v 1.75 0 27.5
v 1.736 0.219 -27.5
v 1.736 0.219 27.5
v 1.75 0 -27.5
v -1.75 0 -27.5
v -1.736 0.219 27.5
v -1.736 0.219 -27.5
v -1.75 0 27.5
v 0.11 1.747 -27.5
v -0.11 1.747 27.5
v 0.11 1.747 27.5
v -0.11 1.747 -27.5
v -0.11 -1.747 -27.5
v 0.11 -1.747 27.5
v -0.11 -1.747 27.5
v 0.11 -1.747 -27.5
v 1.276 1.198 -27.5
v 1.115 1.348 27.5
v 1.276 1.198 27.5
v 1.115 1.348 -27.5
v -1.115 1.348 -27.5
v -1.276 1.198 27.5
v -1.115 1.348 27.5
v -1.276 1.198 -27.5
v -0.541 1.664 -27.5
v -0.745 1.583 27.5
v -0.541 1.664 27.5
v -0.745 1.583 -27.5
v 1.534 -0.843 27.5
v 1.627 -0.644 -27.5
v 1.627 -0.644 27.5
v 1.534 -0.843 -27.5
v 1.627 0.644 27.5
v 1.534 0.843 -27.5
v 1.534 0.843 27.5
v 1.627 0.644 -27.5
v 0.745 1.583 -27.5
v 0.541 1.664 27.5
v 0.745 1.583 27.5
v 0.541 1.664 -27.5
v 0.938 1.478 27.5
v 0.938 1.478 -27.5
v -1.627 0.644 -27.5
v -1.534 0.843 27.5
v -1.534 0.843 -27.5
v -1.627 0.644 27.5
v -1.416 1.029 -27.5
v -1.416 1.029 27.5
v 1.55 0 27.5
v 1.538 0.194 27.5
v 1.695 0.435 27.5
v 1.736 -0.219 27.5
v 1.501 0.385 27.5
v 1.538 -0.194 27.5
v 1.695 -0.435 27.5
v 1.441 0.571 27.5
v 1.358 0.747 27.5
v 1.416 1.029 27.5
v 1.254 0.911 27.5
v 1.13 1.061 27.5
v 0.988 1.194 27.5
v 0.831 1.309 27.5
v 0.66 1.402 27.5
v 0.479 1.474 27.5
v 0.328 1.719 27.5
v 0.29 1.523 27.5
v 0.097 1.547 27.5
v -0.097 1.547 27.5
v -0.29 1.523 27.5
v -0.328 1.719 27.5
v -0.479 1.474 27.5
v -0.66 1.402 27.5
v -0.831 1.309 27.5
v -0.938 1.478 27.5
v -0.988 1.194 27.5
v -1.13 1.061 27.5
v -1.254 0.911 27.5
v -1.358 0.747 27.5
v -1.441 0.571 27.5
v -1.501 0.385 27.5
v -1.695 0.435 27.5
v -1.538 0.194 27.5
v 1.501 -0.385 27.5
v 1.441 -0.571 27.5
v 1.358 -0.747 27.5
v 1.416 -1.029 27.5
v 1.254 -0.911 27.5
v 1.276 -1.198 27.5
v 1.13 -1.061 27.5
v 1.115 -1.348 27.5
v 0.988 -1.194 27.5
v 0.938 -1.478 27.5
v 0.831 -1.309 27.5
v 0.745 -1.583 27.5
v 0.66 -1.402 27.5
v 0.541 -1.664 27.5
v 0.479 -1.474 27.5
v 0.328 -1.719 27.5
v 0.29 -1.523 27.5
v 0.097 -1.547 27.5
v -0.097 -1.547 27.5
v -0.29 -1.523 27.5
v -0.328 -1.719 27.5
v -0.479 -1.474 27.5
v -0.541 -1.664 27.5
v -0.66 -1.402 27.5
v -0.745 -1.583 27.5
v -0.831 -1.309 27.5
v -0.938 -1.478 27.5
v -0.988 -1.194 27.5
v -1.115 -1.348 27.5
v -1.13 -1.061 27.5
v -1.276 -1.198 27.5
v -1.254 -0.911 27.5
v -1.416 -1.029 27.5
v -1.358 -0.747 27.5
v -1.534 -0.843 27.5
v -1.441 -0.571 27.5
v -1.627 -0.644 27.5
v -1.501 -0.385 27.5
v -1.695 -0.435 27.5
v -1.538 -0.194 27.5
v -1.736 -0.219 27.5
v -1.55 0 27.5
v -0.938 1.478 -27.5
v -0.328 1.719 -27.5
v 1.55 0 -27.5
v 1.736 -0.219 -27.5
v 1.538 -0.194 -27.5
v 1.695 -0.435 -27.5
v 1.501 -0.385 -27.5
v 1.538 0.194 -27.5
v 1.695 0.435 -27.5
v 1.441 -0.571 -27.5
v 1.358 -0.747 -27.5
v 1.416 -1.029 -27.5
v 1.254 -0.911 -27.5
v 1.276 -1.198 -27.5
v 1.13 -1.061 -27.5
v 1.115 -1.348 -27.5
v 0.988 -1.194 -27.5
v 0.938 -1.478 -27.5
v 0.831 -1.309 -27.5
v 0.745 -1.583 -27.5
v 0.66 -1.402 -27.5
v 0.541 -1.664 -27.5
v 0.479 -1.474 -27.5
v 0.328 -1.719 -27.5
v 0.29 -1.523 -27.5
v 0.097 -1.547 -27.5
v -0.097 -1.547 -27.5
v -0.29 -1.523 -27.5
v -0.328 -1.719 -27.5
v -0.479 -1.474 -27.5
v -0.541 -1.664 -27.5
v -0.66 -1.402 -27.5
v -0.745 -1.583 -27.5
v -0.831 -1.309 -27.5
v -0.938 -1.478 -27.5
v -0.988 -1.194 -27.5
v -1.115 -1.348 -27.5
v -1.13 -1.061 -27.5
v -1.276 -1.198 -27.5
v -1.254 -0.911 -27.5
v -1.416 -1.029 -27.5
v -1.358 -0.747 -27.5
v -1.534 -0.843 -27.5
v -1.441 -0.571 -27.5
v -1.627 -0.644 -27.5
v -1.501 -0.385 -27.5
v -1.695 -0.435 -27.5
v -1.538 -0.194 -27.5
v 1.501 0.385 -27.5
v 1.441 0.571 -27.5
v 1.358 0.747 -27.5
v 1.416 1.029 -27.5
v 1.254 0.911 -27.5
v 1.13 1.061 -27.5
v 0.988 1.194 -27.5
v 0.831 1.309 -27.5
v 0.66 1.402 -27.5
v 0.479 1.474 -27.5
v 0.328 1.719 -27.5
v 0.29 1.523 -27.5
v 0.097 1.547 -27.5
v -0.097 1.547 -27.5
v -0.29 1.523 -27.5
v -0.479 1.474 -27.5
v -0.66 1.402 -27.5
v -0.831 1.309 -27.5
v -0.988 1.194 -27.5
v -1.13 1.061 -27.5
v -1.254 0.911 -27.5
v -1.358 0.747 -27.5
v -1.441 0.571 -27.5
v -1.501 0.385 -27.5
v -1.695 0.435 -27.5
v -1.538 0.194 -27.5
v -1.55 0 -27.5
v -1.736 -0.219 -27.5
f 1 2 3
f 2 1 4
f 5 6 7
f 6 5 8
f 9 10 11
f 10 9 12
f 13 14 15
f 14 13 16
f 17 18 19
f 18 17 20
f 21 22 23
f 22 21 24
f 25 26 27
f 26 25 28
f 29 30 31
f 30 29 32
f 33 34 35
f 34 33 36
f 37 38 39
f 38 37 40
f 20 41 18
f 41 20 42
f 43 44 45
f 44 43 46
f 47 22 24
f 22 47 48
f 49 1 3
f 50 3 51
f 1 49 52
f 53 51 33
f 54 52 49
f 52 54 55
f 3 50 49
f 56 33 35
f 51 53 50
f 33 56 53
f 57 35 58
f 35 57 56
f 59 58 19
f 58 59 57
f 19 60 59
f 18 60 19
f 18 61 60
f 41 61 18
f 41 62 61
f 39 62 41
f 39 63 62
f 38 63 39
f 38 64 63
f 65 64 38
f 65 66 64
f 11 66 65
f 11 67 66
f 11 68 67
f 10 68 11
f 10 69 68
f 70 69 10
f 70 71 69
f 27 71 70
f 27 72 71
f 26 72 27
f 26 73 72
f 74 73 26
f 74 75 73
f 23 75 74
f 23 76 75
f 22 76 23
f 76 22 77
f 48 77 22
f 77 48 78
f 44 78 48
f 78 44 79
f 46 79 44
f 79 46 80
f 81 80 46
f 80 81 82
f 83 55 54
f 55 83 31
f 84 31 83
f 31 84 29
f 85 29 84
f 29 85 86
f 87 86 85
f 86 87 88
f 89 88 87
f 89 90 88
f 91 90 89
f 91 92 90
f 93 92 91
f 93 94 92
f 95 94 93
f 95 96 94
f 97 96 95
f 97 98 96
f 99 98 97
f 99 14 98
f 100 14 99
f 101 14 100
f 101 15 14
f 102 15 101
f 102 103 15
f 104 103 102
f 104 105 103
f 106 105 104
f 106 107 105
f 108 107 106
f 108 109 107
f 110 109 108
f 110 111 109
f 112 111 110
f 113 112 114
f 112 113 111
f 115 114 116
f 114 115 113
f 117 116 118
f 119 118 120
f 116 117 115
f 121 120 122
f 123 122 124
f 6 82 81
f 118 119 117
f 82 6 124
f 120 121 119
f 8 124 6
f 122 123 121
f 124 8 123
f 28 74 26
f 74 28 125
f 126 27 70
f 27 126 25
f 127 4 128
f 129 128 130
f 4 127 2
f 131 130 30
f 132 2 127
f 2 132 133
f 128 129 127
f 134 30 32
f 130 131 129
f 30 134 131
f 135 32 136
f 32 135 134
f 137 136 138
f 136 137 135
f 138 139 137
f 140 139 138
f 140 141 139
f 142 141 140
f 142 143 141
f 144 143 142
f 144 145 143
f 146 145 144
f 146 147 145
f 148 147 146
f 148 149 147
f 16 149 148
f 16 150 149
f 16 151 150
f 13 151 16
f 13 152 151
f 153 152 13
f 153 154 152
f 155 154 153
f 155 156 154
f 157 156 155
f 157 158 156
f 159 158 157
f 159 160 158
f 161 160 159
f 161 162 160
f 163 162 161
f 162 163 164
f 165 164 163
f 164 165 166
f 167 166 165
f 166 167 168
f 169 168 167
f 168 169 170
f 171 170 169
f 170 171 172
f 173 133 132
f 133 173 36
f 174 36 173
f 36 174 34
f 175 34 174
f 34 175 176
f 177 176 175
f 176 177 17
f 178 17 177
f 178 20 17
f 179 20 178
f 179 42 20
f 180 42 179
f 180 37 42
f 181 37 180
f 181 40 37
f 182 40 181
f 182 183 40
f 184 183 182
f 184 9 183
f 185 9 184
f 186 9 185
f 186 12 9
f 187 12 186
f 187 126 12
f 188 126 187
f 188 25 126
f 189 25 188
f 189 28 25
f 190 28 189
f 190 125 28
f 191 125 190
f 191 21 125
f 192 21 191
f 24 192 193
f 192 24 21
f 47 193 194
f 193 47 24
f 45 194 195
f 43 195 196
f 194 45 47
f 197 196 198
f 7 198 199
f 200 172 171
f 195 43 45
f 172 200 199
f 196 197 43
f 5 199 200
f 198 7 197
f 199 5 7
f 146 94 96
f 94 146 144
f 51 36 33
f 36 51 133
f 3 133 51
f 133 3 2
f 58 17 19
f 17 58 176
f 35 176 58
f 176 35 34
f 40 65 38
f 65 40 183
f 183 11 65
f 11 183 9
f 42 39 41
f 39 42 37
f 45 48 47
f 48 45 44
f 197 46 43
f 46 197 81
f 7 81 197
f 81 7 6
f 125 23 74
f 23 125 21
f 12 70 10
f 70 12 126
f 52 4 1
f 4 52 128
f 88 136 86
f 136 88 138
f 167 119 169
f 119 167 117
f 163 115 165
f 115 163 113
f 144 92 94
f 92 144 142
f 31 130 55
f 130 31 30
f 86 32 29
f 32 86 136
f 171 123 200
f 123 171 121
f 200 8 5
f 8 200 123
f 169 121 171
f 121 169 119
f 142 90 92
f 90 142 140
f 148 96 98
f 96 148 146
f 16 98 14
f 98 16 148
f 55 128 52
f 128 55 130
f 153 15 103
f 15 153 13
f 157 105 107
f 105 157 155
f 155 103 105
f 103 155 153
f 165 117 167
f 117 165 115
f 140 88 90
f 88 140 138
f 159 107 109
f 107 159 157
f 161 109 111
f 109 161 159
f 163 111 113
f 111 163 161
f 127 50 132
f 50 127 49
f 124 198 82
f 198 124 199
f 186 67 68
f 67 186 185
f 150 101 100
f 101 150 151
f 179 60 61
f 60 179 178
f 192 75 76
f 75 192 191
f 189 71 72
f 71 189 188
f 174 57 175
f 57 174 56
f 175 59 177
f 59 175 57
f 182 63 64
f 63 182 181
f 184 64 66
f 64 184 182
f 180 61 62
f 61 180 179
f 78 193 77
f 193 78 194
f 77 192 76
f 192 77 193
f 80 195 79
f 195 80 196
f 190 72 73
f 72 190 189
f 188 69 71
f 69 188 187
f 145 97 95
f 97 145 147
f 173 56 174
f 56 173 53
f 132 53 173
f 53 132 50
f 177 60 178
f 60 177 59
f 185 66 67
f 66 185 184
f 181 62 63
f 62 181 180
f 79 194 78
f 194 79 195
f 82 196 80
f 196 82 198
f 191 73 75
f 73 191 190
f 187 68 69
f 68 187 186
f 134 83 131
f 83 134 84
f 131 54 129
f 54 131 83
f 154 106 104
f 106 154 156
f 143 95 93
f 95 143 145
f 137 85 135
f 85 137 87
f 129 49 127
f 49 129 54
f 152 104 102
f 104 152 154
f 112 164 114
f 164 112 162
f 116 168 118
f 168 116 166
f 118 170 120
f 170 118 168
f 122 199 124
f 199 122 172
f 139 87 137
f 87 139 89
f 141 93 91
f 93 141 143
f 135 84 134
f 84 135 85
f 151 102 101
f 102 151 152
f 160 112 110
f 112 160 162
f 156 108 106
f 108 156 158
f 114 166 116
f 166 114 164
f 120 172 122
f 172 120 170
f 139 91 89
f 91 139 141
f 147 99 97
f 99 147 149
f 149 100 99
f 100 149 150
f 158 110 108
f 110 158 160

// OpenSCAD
$fn = 50;


difference() {
	union() {
		translate(v = [0, 0, -27.5000000000]) {
			cylinder(h = 55, r = 1.7500000000);
		}
	}
	union() {
		translate(v = [0, 0, -100.0000000000]) {
			cylinder(h = 200, r = 1.5500000000);
		}
	}
}
